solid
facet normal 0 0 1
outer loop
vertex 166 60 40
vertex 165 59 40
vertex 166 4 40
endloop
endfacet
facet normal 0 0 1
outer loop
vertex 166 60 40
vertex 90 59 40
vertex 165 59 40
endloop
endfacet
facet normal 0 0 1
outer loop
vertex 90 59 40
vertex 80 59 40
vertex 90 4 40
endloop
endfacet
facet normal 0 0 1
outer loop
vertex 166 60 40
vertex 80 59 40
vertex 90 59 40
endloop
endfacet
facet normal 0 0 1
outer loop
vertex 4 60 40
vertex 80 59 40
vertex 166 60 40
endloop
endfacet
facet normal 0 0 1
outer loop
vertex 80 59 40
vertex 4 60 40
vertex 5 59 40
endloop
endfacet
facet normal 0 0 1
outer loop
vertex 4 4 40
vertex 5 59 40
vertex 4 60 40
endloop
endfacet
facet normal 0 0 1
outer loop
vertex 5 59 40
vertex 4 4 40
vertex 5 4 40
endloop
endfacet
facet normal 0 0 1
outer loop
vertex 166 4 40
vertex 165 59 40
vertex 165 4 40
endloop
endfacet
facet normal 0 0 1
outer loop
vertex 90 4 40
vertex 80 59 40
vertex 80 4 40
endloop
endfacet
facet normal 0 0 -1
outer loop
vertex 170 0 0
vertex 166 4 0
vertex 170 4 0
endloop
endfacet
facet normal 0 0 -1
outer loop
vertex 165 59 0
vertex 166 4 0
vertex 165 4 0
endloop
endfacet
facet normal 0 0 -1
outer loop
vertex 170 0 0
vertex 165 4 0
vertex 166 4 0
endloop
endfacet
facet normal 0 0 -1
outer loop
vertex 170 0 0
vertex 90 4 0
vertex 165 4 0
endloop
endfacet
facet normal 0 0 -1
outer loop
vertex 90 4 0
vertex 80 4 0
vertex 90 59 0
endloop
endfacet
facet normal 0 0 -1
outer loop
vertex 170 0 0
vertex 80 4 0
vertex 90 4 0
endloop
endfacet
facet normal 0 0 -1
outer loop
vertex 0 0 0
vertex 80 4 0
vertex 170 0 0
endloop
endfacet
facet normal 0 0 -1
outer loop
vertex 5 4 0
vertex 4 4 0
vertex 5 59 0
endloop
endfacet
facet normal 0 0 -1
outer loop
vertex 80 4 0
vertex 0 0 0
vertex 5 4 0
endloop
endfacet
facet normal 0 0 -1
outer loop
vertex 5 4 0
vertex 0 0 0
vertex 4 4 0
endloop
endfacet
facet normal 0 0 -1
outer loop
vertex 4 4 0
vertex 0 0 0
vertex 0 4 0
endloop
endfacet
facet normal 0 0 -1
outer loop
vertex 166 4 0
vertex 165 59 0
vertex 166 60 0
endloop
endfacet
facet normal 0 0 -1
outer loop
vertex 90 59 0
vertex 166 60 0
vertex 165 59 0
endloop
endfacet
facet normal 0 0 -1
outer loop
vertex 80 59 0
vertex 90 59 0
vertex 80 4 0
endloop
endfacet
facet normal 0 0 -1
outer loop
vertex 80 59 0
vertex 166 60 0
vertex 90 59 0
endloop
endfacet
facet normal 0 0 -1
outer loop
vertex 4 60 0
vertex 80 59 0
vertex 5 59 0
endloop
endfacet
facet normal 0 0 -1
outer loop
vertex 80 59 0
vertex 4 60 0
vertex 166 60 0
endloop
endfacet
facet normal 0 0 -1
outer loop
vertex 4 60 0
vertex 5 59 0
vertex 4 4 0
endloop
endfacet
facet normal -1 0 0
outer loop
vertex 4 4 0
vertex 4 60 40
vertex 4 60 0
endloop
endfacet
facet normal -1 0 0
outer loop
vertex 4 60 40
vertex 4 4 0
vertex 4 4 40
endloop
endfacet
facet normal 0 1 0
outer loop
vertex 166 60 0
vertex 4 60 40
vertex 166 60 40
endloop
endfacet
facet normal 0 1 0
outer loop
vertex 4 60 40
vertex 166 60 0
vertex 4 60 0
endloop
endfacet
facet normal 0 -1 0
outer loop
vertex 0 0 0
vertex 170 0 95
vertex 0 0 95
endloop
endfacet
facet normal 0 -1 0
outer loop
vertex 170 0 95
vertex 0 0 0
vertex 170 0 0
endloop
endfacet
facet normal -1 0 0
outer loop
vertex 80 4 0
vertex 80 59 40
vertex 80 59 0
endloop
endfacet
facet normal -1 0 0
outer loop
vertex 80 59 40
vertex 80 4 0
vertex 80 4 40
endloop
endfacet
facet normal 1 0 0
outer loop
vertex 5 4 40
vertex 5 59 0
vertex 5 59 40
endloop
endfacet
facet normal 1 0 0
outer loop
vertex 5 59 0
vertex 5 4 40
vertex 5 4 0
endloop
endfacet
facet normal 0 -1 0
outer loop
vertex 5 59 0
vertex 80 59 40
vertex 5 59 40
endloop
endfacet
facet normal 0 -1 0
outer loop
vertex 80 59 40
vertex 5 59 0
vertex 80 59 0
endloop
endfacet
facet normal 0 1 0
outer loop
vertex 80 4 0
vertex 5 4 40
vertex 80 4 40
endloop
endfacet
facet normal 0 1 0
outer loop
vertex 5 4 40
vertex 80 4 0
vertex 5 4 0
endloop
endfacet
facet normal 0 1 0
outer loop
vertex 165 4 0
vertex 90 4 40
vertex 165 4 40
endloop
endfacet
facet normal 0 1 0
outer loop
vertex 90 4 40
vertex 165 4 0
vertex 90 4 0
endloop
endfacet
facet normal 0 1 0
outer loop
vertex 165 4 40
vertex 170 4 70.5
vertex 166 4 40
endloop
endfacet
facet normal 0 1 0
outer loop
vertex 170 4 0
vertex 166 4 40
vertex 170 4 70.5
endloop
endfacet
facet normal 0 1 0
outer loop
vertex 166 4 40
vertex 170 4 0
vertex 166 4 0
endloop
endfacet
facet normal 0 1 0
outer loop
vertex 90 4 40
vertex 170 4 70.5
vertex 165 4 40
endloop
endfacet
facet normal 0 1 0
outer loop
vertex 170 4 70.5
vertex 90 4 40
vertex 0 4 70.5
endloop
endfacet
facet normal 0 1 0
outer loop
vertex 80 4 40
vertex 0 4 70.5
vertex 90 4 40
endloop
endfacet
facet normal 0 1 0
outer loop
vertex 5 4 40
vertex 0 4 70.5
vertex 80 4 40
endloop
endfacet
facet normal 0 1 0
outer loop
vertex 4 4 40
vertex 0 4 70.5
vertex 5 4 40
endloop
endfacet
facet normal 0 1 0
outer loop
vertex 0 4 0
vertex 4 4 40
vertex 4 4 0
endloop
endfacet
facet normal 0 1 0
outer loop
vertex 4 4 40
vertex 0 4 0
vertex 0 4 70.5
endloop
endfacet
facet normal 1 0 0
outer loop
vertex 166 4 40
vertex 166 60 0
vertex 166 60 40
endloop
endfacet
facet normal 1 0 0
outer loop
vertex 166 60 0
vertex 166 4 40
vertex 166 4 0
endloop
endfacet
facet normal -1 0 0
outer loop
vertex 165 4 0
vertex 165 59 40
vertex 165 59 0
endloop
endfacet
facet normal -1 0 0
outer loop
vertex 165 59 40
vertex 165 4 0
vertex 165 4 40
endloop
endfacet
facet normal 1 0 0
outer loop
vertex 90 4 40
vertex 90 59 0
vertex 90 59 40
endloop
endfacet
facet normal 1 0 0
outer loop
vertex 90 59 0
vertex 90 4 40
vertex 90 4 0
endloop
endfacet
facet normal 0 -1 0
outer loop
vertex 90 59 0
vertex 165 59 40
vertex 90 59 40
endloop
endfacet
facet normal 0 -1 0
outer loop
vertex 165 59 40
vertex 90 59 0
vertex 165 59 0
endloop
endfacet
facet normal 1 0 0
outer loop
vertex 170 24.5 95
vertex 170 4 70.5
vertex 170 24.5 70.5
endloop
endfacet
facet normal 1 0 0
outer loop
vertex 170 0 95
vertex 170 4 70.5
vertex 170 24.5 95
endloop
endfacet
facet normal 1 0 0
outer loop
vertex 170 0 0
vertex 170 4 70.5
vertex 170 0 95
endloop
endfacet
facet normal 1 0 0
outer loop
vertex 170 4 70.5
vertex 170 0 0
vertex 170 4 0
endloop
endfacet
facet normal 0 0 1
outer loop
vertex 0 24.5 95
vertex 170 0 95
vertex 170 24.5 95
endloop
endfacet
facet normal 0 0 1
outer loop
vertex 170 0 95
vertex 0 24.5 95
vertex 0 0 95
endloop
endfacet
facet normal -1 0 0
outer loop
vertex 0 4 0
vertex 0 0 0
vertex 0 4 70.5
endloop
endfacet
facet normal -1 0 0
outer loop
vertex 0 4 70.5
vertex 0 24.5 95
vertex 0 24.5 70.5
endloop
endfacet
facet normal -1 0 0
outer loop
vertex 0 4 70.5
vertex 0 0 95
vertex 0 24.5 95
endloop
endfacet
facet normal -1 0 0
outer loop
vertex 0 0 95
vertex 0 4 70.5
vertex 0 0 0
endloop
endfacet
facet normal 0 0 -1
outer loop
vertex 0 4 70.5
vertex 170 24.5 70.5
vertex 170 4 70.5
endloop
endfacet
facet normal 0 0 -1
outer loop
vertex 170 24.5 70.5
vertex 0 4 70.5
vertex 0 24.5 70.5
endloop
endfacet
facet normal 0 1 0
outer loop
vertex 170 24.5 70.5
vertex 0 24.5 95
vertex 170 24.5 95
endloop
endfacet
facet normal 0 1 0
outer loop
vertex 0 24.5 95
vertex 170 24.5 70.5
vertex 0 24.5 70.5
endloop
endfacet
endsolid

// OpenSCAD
// ============================================================
// Makita 18V Battery Pack — French Cleat Wall Mount
// ============================================================
// Holds 2× Makita 18V BL18xx batteries on a French cleat wall.
// Batteries slot in from above and are held by the terminal tabs.
//
// French cleat: 19mm (3/4") ply, 45° standard
// Design: print flat, back plate on bed, no supports needed.
// ============================================================

// ---- FRENCH CLEAT (don't change) ----
cleat_material = 19;   // Wall strip thickness (mm)
hook_clearance = 1.5;  // Hook slide gap (mm)
wall_t         = 4;    // Structural wall thickness (mm)

// ---- MAKITA 18V BATTERY DIMENSIONS ----
// BL1830/BL1840/BL1850 — all share the same mounting rail
battery_w      = 75;   // Battery body width (mm)
battery_d      = 55;   // Battery body depth front-to-back (mm)
battery_slot_w = 20;   // Width of the battery retention tab slot (mm)
battery_gap    = 1.0;  // Clearance so battery slides in smoothly (mm)

// ---- HOLDER GEOMETRY ----
num_batteries  = 2;    // Batteries to hold side-by-side
pocket_gap     = 8;    // Gap between battery pockets (mm)
pocket_depth   = 35;   // How deep battery sits in pocket (mm)
pocket_h       = 40;   // Height of each battery pocket (mm)
plate_h        = 95;   // Total mount height (mm)

// ---- COMPUTED ----
bw             = battery_w + battery_gap * 2;
bd             = battery_d + battery_gap;
plate_w        = bw * num_batteries + pocket_gap * (num_batteries - 1) + wall_t * 2;
hook_h         = cleat_material + hook_clearance + wall_t;
hook_start_z   = plate_h - hook_h;

// ============================================================
// MODULES
// ============================================================

module cleat_hook() {
    difference() {
        cube([plate_w, cleat_material + wall_t + hook_clearance, hook_h]);
        translate([-0.1, wall_t, -0.1])
        rotate([0, 90, 0])
        linear_extrude(plate_w + 0.2)
        polygon([
            [0, 0],
            [cleat_material + hook_clearance, 0],
            [cleat_material + hook_clearance, hook_h + 0.2],
            [0, hook_h * 0.45]
        ]);
    }
}

module battery_pocket(x_offset) {
    translate([x_offset, 0, 0])
    difference() {
        cube([bw, bd + wall_t, pocket_h]);
        // Open pocket (open at top for battery insertion)
        translate([battery_gap, wall_t, -0.1])
            cube([battery_w, battery_d, pocket_h + 0.2]);
    }
}

module holder_body() {
    union() {
        // Back plate — full width, full height
        cube([plate_w, wall_t, plate_h]);

        // Battery pockets
        for (i = [0 : num_batteries - 1]) {
            xpos = wall_t + i * (bw + pocket_gap);
            battery_pocket(xpos);
        }

        // Divider between batteries (and left/right end walls already in back plate)
        if (num_batteries > 1) {
            divider_x = wall_t + bw;
            translate([divider_x, 0, 0])
                cube([pocket_gap, bd + wall_t, pocket_h]);
        }
    }
}

// ============================================================
// ASSEMBLY
// ============================================================
union() {
    holder_body();
    translate([0, 0, hook_start_z])
        cleat_hook();
}

// ============================================================
// PRINT SETTINGS
// ============================================================
// Orientation : back plate flat on print bed (no supports)
// Material    : PLA+ or PETG
// Infill      : 25-30%
// Layer height: 0.2mm
// Batteries slide in from top, terminal tabs lock at pocket bottom
// ============================================================
